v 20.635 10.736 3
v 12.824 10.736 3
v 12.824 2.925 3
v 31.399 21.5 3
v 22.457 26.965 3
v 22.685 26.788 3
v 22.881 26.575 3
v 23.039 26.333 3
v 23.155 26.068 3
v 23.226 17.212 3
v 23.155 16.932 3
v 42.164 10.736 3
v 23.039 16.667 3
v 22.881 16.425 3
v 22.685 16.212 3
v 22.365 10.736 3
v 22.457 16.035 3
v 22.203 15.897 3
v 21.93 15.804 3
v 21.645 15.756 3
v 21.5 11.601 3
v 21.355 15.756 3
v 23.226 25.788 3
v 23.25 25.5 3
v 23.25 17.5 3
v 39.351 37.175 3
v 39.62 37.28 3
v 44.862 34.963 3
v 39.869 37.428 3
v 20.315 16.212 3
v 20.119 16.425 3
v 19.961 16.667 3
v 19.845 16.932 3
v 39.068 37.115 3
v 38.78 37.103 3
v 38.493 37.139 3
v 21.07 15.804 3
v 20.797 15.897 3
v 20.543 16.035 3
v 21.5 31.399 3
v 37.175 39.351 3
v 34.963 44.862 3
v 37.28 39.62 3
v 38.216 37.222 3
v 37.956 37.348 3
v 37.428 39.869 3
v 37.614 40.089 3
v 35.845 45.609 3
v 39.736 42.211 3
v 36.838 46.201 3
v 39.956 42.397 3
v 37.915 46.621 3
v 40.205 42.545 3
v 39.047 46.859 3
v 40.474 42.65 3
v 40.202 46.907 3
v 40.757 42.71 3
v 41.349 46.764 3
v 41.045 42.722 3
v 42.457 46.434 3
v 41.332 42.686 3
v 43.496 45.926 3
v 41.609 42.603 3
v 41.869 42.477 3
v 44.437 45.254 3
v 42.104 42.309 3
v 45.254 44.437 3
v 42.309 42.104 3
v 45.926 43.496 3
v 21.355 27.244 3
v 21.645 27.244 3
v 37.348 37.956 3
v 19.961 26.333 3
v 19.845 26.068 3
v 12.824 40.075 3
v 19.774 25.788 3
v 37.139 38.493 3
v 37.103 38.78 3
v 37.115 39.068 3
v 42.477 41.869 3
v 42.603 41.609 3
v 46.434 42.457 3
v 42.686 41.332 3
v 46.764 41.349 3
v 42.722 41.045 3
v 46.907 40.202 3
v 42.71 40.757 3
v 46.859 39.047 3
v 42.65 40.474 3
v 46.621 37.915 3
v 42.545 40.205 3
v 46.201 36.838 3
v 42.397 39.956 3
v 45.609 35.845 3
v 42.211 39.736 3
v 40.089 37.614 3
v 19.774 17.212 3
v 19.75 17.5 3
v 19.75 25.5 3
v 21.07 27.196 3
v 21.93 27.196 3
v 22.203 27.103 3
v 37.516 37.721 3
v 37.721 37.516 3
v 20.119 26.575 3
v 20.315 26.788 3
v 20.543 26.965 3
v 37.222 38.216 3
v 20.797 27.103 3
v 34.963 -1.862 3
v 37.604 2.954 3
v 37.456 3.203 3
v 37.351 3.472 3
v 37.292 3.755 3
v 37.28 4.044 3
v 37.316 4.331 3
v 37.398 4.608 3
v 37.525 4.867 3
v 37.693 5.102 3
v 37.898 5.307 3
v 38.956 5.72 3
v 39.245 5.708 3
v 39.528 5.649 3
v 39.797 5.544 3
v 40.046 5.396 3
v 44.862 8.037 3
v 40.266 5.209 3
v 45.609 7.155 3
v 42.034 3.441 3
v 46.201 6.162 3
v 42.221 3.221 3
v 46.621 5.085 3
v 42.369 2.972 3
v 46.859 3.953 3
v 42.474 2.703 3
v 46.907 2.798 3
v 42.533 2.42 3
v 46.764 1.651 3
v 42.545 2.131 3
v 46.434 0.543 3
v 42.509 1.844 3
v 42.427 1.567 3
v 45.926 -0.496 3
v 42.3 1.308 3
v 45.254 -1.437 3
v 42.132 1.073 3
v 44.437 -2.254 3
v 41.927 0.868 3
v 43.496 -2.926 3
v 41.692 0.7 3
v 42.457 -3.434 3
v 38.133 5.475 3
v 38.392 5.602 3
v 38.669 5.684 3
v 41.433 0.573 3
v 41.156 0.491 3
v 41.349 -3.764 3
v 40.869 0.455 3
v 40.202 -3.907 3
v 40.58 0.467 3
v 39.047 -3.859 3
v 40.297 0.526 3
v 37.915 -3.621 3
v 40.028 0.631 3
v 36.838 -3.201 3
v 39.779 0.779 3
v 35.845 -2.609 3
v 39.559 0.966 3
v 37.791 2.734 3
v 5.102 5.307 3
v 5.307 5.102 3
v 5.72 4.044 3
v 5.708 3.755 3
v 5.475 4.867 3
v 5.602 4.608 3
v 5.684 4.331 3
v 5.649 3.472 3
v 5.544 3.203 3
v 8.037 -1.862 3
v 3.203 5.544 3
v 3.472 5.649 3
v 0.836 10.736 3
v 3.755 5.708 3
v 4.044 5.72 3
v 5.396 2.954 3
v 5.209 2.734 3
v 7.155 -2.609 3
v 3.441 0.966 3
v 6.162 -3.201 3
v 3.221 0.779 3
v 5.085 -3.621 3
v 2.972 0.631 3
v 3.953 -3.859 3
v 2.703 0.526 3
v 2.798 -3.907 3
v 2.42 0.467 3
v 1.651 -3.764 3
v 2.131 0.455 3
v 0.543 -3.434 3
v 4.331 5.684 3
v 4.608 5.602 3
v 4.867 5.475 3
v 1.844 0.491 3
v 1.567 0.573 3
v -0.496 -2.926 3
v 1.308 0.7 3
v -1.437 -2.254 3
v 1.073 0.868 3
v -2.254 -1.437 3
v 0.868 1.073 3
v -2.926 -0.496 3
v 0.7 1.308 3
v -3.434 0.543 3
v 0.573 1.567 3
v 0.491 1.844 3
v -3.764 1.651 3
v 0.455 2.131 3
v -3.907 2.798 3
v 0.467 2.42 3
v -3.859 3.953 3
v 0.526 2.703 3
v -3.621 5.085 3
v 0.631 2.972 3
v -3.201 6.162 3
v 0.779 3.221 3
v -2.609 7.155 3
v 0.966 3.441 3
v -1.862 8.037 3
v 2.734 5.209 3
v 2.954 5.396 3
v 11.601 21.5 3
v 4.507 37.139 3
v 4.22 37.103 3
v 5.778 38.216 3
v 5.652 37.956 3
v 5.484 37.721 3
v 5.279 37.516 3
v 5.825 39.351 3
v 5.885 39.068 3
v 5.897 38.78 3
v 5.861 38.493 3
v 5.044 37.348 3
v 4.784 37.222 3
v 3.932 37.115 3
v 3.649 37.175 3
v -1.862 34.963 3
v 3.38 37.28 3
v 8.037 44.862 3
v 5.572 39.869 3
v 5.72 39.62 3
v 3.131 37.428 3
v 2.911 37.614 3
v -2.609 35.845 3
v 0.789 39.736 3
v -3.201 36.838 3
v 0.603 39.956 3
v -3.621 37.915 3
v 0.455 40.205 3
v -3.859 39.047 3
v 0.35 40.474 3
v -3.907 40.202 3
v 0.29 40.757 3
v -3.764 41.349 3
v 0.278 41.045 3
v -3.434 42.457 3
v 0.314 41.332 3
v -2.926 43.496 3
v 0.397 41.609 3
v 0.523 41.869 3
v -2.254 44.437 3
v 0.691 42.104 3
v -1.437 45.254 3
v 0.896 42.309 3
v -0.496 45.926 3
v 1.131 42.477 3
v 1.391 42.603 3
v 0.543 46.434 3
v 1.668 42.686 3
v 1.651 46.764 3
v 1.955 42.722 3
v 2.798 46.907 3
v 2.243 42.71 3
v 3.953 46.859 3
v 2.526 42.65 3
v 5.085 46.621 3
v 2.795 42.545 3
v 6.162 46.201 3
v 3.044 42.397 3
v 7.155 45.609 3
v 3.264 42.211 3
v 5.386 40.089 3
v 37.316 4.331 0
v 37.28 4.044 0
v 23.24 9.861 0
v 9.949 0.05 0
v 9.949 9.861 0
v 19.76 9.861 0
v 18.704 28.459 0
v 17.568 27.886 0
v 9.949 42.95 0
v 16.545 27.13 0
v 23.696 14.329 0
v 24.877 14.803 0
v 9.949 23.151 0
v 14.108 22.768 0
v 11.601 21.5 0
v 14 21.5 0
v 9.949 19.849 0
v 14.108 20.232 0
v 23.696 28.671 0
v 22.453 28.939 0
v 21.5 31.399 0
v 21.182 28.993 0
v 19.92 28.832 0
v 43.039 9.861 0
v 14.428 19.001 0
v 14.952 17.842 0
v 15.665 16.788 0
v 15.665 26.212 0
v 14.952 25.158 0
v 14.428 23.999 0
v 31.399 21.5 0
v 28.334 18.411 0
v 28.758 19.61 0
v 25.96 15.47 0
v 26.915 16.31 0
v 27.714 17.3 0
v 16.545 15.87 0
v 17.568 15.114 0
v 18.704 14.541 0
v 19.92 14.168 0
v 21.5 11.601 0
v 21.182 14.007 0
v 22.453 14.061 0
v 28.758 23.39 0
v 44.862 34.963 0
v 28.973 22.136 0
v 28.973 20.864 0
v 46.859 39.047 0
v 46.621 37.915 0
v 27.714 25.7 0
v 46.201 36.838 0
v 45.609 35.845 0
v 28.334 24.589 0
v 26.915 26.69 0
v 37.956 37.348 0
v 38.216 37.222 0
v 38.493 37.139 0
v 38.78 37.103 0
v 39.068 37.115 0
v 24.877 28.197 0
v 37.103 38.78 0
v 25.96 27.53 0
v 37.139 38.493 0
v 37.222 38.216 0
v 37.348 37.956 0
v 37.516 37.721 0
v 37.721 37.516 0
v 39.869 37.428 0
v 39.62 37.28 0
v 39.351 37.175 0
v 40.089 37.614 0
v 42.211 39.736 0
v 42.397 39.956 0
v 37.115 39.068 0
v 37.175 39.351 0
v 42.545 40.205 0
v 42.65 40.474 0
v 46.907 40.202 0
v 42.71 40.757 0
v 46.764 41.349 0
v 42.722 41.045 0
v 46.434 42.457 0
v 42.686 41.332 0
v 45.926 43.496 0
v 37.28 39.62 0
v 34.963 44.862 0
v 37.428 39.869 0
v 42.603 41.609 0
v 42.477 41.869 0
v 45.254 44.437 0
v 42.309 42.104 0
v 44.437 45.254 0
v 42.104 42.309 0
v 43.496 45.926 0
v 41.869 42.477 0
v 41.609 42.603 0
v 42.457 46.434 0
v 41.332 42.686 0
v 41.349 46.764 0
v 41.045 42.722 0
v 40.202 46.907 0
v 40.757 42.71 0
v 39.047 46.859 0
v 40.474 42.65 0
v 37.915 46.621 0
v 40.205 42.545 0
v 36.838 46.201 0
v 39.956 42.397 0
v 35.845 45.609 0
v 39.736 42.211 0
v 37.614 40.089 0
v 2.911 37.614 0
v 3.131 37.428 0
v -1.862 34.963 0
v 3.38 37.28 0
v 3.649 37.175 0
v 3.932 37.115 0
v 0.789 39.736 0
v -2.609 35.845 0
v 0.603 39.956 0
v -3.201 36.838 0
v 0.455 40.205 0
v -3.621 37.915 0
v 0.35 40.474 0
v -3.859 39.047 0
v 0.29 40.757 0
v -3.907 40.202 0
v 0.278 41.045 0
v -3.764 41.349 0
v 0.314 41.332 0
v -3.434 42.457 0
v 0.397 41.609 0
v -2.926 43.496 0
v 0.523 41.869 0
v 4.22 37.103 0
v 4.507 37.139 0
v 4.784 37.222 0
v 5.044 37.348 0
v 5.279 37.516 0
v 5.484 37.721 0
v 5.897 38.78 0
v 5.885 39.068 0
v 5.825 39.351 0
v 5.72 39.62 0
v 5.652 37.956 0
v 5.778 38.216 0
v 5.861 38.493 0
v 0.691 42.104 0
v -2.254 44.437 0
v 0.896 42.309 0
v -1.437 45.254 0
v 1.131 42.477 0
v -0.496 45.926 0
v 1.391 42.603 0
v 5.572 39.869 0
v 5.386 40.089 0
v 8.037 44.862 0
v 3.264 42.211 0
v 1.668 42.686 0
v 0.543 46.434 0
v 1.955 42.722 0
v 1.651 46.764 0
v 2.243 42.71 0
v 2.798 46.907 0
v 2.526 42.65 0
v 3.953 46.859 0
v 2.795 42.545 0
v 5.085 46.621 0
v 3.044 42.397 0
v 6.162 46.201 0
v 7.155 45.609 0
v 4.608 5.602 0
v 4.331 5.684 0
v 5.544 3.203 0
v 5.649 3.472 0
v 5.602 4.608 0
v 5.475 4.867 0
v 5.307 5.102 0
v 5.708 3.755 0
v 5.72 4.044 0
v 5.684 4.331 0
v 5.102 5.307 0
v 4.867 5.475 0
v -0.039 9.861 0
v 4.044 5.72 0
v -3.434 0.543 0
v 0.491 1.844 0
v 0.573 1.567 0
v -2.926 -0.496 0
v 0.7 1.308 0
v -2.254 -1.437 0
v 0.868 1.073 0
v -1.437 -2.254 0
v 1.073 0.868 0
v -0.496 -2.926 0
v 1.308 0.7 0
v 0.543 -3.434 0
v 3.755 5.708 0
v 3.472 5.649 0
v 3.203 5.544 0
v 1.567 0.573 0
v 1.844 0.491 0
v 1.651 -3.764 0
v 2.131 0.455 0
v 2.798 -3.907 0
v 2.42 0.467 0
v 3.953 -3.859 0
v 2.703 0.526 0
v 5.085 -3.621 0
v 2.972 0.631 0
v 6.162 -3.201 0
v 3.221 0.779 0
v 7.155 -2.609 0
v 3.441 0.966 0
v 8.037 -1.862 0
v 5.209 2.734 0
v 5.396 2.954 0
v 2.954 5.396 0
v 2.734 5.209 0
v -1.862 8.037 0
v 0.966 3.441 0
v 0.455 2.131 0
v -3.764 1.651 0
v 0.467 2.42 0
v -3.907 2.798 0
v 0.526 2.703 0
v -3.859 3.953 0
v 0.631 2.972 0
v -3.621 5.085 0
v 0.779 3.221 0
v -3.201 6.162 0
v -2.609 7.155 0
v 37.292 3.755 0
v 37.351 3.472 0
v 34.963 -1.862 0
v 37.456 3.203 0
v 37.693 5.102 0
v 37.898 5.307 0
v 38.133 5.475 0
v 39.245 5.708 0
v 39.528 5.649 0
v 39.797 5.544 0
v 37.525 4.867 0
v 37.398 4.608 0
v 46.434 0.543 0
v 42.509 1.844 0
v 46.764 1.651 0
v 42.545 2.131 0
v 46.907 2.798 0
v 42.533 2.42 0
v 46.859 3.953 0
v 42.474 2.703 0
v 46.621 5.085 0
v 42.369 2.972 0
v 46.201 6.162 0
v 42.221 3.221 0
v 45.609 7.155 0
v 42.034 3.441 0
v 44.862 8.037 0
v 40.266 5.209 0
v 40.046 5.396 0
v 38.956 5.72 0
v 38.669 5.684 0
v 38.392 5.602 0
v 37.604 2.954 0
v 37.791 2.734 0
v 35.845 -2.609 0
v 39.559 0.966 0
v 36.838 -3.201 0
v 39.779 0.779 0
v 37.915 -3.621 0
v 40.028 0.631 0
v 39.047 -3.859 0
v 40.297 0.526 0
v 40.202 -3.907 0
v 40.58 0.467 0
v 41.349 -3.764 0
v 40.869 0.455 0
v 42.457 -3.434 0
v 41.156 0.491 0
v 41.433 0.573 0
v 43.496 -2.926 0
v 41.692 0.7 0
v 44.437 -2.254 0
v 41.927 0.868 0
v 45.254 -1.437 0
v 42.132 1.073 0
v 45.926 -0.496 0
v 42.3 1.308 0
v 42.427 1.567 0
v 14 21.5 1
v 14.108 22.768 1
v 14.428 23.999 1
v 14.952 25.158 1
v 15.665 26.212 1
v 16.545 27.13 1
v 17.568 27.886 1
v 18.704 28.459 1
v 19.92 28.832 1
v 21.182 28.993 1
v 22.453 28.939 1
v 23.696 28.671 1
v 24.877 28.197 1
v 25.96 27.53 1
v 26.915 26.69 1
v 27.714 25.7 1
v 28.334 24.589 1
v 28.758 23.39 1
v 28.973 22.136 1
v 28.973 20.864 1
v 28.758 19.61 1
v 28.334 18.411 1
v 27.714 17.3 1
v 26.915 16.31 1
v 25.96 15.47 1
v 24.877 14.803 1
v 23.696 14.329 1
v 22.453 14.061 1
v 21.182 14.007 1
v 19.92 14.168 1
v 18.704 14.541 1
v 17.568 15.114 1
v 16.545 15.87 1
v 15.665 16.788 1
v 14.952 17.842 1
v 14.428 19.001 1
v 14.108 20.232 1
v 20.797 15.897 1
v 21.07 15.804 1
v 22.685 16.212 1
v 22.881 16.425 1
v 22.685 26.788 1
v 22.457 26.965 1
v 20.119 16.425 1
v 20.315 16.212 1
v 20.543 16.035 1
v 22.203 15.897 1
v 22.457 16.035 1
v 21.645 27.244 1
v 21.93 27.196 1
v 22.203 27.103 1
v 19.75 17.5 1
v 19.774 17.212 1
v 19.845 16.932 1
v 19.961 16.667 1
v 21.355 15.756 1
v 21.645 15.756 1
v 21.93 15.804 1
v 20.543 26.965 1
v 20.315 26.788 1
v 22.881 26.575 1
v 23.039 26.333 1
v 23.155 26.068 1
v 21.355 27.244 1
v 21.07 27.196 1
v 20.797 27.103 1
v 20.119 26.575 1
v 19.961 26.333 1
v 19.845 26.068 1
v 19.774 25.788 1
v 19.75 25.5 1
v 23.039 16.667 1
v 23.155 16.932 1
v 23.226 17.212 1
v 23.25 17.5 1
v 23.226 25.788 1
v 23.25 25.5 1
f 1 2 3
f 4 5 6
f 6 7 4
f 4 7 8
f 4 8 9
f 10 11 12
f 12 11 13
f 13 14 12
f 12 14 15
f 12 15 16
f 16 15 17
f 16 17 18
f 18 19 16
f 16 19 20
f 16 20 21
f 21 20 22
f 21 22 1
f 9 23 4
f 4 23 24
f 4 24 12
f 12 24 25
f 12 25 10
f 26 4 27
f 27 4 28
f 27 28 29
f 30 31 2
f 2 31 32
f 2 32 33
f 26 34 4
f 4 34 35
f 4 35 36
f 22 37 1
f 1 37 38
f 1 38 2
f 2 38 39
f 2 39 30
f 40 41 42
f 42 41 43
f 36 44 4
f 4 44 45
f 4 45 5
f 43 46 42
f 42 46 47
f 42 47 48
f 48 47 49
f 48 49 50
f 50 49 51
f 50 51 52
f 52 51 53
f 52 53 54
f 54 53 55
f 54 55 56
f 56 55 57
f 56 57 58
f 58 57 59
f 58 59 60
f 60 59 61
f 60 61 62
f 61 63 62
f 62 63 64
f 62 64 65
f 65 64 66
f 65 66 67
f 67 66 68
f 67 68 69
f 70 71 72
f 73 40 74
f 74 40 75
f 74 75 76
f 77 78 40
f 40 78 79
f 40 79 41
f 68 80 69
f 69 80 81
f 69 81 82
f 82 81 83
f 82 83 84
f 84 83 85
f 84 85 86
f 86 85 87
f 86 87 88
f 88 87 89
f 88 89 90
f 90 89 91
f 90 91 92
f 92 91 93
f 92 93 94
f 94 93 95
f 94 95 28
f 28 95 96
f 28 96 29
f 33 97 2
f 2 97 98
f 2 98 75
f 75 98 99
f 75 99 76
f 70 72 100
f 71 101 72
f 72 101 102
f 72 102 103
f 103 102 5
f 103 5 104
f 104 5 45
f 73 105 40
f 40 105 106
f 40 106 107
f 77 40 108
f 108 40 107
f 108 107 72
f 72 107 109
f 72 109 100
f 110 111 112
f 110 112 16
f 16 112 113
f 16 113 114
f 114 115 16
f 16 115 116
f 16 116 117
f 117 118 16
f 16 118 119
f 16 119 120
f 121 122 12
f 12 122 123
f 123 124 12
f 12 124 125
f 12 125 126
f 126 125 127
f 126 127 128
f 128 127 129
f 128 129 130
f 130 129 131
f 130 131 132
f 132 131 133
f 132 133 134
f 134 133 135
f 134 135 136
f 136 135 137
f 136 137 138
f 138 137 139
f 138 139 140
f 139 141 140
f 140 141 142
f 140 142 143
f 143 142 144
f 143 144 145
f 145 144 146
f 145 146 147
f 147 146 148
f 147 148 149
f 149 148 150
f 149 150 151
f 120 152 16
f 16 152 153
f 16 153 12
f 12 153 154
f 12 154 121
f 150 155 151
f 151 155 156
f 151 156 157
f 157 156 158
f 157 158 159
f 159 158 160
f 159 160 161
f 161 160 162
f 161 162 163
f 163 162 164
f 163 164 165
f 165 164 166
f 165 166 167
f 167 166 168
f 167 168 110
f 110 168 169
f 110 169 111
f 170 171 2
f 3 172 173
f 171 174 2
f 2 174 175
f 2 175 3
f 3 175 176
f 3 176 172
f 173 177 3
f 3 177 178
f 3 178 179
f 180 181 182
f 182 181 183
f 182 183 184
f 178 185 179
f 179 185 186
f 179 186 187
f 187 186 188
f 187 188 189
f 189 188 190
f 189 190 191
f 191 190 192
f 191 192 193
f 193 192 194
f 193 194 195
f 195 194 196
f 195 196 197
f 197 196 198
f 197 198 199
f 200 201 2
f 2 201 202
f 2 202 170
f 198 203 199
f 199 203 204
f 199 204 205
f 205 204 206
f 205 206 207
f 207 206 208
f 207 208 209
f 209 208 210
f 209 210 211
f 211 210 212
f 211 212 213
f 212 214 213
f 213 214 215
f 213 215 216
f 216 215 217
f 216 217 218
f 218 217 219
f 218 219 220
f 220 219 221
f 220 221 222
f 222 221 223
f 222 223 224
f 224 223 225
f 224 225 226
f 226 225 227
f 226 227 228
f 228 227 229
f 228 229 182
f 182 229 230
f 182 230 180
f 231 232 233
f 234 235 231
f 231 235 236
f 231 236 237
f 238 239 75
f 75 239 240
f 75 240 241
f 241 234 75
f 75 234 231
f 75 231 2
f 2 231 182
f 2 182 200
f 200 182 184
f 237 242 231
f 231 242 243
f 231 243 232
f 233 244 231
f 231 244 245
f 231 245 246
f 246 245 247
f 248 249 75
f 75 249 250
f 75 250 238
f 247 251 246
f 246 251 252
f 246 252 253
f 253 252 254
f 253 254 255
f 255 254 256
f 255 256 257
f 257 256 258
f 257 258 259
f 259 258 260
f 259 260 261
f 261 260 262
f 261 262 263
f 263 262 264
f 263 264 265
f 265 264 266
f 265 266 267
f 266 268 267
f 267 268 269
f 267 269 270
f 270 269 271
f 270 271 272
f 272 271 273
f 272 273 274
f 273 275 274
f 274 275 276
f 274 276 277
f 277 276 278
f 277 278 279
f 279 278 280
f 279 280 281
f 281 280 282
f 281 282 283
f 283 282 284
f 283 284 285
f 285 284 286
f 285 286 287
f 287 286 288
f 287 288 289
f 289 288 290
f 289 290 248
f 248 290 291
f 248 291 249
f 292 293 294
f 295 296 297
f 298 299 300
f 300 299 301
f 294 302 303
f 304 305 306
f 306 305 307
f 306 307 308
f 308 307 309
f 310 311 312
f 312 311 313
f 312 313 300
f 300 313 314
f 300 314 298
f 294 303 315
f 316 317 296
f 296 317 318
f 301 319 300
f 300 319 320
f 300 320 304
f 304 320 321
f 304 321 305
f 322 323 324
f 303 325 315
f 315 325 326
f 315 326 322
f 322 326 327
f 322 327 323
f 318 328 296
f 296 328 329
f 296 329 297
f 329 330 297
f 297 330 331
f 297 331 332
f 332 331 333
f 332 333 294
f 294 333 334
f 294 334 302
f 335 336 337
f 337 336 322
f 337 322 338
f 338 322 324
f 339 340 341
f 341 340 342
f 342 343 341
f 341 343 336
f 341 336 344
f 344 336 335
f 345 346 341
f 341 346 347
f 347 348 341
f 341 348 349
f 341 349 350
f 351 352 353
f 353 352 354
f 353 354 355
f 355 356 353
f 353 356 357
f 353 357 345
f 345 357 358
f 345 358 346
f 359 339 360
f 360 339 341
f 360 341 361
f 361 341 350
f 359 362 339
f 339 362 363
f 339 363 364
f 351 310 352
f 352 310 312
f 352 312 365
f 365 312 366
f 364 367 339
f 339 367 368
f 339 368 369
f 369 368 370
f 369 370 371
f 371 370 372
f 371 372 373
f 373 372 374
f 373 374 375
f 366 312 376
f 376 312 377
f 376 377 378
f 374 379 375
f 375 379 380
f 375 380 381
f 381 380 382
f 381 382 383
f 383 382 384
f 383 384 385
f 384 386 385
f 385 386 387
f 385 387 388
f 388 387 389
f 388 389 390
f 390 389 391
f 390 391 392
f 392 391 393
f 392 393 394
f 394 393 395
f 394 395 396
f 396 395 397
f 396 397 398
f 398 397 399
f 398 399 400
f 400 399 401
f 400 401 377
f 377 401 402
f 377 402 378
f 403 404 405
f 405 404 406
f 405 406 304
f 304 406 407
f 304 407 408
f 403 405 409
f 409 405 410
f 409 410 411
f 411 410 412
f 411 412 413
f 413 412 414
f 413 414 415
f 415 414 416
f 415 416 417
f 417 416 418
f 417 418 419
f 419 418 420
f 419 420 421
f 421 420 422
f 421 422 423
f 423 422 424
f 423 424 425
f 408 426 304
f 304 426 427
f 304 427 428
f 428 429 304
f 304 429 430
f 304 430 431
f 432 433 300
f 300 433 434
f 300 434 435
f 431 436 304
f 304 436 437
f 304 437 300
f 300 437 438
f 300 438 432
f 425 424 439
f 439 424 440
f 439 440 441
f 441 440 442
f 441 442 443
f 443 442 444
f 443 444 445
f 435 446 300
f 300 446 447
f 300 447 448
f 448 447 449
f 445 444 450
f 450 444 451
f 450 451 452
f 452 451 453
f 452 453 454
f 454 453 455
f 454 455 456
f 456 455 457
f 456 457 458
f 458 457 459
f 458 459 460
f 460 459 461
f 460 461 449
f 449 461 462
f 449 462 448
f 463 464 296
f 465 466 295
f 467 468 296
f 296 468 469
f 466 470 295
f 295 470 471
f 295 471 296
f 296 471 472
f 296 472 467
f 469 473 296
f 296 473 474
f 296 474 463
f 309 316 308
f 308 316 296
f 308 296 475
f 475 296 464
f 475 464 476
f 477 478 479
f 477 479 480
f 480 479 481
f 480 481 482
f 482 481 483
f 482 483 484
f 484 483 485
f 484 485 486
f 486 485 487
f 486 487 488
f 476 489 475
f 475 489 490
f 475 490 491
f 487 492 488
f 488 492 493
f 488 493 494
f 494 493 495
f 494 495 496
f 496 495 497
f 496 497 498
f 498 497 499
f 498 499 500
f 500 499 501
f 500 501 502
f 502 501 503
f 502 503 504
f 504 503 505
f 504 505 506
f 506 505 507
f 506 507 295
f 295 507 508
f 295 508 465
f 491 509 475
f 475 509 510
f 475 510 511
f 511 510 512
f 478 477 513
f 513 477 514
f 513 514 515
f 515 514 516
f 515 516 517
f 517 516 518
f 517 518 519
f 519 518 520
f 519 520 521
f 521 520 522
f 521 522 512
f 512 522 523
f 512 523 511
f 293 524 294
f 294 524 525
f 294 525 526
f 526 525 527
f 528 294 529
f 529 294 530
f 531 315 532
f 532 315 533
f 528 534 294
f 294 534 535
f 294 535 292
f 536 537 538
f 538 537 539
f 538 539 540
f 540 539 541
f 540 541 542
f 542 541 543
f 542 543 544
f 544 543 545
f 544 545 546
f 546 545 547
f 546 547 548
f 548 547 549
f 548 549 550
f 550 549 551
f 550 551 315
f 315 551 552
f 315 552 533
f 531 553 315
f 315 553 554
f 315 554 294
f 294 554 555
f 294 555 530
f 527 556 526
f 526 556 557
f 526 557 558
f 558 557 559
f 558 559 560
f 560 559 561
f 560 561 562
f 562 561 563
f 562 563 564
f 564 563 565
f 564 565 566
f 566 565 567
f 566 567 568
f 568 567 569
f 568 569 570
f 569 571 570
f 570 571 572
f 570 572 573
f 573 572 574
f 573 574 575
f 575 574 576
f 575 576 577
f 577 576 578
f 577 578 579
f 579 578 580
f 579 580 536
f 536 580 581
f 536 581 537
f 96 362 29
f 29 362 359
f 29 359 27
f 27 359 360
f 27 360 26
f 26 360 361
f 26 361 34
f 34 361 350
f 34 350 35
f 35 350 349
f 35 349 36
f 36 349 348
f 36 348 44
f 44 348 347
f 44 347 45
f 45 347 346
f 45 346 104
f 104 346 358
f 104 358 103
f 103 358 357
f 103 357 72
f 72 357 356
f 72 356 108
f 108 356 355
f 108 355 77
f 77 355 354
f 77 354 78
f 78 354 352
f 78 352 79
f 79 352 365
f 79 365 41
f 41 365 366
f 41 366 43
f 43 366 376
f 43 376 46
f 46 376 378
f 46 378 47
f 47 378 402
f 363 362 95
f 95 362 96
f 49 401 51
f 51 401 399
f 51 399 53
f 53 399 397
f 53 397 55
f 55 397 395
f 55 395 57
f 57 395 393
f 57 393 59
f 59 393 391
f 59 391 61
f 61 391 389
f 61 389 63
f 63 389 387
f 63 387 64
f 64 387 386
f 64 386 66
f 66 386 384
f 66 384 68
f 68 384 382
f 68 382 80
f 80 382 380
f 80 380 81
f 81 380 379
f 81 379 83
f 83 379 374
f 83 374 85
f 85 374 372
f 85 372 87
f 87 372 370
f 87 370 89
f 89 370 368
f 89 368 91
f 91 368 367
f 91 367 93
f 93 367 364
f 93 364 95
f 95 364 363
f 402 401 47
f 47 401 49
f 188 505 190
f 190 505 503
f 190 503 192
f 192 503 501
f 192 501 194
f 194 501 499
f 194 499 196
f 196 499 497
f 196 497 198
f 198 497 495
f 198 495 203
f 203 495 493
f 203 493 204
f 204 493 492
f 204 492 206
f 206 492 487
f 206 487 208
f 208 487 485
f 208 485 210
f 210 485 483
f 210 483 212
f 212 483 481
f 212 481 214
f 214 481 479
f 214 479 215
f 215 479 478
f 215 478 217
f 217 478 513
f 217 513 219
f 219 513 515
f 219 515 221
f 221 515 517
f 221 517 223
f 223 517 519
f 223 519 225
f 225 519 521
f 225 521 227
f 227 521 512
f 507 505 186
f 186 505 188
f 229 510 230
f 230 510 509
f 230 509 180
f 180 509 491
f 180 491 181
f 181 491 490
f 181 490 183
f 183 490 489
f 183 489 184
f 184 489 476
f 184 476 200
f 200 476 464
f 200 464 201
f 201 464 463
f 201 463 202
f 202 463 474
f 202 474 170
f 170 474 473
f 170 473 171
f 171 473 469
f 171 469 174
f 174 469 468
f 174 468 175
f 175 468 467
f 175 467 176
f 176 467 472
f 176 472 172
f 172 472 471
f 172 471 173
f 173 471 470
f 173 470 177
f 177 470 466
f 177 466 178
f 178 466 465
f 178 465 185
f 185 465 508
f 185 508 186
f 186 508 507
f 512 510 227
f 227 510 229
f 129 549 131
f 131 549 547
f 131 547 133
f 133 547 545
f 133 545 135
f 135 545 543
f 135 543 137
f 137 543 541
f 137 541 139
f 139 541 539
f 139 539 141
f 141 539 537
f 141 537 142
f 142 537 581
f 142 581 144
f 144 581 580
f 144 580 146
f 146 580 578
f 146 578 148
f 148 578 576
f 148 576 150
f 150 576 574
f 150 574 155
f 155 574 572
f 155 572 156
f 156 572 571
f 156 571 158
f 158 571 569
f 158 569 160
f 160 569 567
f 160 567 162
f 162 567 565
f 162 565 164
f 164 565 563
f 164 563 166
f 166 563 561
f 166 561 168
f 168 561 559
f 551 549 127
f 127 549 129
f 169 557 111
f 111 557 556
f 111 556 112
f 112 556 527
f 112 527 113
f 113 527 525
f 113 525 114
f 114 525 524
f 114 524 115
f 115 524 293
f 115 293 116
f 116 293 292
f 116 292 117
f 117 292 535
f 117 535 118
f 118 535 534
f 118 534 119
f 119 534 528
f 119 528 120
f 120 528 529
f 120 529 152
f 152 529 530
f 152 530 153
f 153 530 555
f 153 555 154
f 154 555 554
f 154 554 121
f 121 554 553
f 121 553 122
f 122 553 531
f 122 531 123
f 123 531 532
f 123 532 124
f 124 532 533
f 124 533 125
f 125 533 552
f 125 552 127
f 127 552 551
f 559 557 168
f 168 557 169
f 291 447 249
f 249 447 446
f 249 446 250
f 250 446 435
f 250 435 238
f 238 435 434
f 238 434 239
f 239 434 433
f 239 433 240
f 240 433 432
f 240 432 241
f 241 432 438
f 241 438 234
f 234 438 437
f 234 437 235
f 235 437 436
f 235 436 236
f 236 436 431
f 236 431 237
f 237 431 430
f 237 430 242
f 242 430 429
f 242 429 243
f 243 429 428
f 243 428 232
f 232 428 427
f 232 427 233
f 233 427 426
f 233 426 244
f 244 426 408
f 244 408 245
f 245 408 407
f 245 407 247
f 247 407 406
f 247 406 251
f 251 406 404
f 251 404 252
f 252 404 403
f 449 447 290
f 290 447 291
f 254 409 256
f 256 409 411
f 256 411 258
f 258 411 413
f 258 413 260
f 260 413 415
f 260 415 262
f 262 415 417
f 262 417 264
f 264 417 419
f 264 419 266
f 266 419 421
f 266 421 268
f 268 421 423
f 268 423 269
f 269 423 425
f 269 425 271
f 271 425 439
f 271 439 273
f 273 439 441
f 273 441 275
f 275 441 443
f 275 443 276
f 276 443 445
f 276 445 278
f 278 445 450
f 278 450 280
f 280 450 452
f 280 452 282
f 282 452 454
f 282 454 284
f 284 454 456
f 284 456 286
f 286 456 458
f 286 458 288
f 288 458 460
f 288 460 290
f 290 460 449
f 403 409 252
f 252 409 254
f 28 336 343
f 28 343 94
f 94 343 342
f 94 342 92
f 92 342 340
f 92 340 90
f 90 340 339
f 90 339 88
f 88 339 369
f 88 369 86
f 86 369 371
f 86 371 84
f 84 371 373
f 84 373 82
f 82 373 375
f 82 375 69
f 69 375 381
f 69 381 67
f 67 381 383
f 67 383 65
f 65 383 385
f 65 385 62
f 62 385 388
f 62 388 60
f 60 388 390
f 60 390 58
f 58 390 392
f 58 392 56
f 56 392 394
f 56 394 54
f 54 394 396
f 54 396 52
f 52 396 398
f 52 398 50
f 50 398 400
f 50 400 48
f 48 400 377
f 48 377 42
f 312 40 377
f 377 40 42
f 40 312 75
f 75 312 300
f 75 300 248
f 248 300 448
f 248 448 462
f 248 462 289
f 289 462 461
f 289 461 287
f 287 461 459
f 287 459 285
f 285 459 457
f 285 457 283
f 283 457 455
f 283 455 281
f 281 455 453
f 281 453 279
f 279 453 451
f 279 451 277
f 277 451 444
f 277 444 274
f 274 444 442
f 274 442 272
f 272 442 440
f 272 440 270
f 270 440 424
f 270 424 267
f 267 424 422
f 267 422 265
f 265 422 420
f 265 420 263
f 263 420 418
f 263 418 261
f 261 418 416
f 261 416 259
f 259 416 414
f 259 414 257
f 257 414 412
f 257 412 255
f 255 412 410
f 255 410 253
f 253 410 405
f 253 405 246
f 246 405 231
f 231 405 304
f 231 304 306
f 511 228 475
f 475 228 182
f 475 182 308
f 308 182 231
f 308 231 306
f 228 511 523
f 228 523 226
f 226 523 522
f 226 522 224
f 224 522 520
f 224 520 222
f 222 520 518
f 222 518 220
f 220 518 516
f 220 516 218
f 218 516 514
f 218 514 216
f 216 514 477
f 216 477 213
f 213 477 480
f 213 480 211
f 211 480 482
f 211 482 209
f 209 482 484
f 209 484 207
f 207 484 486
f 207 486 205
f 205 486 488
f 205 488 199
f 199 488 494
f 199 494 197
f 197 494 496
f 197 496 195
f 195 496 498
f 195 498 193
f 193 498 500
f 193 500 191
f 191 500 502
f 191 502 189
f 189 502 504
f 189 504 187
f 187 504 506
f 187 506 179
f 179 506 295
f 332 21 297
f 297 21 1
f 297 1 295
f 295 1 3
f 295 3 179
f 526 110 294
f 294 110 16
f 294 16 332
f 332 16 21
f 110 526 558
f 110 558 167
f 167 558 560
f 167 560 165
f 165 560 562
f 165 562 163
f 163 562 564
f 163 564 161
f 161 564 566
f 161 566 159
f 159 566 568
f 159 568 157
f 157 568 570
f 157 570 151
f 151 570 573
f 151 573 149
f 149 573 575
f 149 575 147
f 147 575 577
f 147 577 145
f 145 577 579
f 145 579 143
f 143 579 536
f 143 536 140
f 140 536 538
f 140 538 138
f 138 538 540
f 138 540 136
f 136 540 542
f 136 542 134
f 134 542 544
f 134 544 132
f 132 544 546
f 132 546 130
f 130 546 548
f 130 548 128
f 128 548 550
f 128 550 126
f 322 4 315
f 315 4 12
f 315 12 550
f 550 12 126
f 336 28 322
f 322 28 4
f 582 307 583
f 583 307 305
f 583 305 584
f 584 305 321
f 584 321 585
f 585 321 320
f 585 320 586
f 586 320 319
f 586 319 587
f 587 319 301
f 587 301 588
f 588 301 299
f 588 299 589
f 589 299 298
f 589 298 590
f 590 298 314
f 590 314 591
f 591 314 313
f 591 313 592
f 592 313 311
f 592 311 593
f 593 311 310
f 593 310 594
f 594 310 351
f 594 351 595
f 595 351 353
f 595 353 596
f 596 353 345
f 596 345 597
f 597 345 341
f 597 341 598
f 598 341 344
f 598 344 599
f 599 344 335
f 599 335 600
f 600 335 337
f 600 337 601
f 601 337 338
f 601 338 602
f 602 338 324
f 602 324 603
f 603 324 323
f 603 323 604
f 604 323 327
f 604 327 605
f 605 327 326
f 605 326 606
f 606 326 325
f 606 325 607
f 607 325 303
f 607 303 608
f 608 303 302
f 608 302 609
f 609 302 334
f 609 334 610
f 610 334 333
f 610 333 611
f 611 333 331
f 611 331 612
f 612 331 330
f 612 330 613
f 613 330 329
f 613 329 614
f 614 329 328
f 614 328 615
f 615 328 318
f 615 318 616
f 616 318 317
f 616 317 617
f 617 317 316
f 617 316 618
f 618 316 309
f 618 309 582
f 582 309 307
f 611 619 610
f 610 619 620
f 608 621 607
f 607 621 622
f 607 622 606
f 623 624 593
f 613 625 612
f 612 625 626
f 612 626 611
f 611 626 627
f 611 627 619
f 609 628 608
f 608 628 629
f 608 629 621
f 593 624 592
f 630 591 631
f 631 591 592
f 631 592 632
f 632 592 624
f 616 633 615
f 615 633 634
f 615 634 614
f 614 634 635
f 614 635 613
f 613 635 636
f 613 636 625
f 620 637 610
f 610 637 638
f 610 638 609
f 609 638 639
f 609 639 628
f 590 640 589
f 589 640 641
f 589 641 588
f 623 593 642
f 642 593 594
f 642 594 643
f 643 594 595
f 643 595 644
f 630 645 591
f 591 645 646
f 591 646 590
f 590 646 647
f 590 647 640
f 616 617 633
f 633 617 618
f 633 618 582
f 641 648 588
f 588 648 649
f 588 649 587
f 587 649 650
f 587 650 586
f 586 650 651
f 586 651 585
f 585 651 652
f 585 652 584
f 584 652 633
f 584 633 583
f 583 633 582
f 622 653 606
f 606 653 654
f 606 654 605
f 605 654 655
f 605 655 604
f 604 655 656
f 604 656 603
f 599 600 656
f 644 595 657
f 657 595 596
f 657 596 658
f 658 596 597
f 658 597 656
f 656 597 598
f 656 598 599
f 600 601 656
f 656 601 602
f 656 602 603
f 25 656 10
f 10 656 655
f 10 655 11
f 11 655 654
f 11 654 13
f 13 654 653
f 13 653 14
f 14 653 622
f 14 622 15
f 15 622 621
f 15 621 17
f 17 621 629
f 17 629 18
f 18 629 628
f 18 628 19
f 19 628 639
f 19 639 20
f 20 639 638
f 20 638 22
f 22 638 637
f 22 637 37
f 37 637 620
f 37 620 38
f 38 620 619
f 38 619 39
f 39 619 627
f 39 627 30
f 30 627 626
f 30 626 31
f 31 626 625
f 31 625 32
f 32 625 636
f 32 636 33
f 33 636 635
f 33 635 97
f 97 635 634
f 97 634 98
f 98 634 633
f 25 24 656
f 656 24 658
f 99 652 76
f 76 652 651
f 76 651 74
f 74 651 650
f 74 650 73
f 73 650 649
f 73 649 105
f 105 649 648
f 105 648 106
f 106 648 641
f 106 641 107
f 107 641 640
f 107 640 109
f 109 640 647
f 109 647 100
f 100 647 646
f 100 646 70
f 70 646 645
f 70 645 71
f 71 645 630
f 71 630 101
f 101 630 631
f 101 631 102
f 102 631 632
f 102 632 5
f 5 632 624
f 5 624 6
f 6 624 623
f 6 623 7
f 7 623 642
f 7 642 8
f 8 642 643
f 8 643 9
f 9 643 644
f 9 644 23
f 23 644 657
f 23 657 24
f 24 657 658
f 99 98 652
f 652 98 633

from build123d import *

# Parameters (mm, degrees)
BOSS_EXTRUDE1_DEPTH = 3
CUT_EXTRUDE1_DEPTH  = 10
SKETCH3_OUTSIDE_W   = 98.222
SKETCH3_OUTSIDE_H   = 98.222
CUT_EXTRUDE2_DEPTH  = 10
SKETCH5_R           = 7.5
CUT_EXTRUDE3_DEPTH  = 1
CUT_EXTRUDE4_DEPTH  = 2


with BuildPart() as part:
    # Sketch1 → Boss-Extrude1 (new body)
    with BuildSketch(Plane.XY):
        with BuildLine():
            ThreePointArc((59, 21.5), (35.850628714, 56.145482469), (-5.016504294, 48.016504294))
            Line((-5.016504294, 48.016504294), (48.016504294, -5.016504294))
            ThreePointArc((48.016504294, -5.016504294), (56.145482469, 7.149371286), (59, 21.5))
        make_face()
        with BuildLine():
            Line((48.016504294, -5.016504294), (-5.016504294, 48.016504294))
            ThreePointArc((-5.016504294, 48.016504294), (-5.016504294, -5.016504294), (48.016504294, -5.016504294))
        make_face()
    extrude(amount=BOSS_EXTRUDE1_DEPTH)

    # Sketch2 → Cut-Extrude1 (cut)
    with BuildSketch(Plane(origin=(0, 0, 0), x_dir=(-1, 0, 0), z_dir=(0, 0, -1))):
        with BuildLine():
            Line((-40.089276695, 37.614402961), (-42.210597039, 39.735723305))
            ThreePointArc((-42.210597039, 39.735723305), (-42.210597039, 42.210597039), (-39.735723305, 42.210597039))
            Line((-39.735723305, 42.210597039), (-37.614402961, 40.089276695))
            ThreePointArc((-37.614402961, 40.089276695), (-37.614402961, 37.614402961), (-40.089276695, 37.614402961))
        make_face()
        with BuildLine():
            Line((-5.385597039, 40.089276695), (-3.264276695, 42.210597039))
            ThreePointArc((-3.264276695, 42.210597039), (-0.789402961, 42.210597039), (-0.789402961, 39.735723305))
            Line((-0.789402961, 39.735723305), (-2.910723305, 37.614402961))
            ThreePointArc((-2.910723305, 37.614402961), (-5.385597039, 37.614402961), (-5.385597039, 40.089276695))
        make_face()
        with BuildLine():
            Line((-42.033820344, 3.441053391), (-40.266053391, 5.208820344))
            ThreePointArc((-40.266053391, 5.208820344), (-37.791179656, 5.208820344), (-37.791179656, 2.733946609))
            Line((-37.791179656, 2.733946609), (-39.558946609, 0.966179656))
            ThreePointArc((-39.558946609, 0.966179656), (-42.033820344, 0.966179656), (-42.033820344, 3.441053391))
        make_face()
        with BuildLine():
            Line((-3.441053391, 0.966179656), (-5.208820344, 2.733946609))
            ThreePointArc((-5.208820344, 2.733946609), (-5.208820344, 5.208820344), (-2.733946609, 5.208820344))
            Line((-2.733946609, 5.208820344), (-0.966179656, 3.441053391))
            ThreePointArc((-0.966179656, 3.441053391), (-0.966179656, 0.966179656), (-3.441053391, 0.966179656))
        make_face()
    extrude(amount=-CUT_EXTRUDE1_DEPTH, mode=Mode.SUBTRACT)

    # Sketch3 outside → Cut-Extrude2 (cut)
    with BuildSketch(Plane(origin=(0, 0, 0), x_dir=(-1, 0, 0), z_dir=(0, 0, -1))):
        with Locations((-21.5, 21.5)):
            Rectangle(SKETCH3_OUTSIDE_W, SKETCH3_OUTSIDE_H)
        with BuildLine():
            Line((-34.962752532, 44.862247468), (-21.5, 31.399494937))
            Line((-21.5, 31.399494937), (-8.037247468, 44.862247468))
            ThreePointArc((-8.037247468, 44.862247468), (1.862247468, 44.862247468), (1.862247468, 34.962752532))
            Line((1.862247468, 34.962752532), (-11.600505063, 21.5))
            Line((-11.600505063, 21.5), (1.862247468, 8.037247468))
            ThreePointArc((1.862247468, 8.037247468), (1.862247468, -1.862247468), (-8.037247468, -1.862247468))
            Line((-8.037247468, -1.862247468), (-21.5, 11.600505063))
            Line((-21.5, 11.600505063), (-34.962752532, -1.862247468))
            ThreePointArc((-34.962752532, -1.862247468), (-44.862247468, -1.862247468), (-44.862247468, 8.037247468))
            Line((-44.862247468, 8.037247468), (-31.399494937, 21.5))
            Line((-31.399494937, 21.5), (-44.862247468, 34.962752532))
            ThreePointArc((-44.862247468, 34.962752532), (-44.862247468, 44.862247468), (-34.962752532, 44.862247468))
        make_face(mode=Mode.SUBTRACT)
    extrude(amount=-CUT_EXTRUDE2_DEPTH, mode=Mode.SUBTRACT)

    # Sketch5 → Cut-Extrude3 (cut)
    with BuildSketch(Plane(origin=(0, 0, 0), x_dir=(-1, 0, 0), z_dir=(0, 0, -1))):
        with Locations((-21.5, 21.5)):
            Circle(SKETCH5_R)
    extrude(amount=-CUT_EXTRUDE3_DEPTH, mode=Mode.SUBTRACT)

    # Sketch6 → Cut-Extrude4 (cut)
    with BuildSketch(Plane(origin=(0, 0, 1), x_dir=(-1, 0, 0), z_dir=(0, 0, -1))):
        with BuildLine():
            Line((-23.25, 17.5), (-23.25, 25.5))
            ThreePointArc((-23.25, 25.5), (-21.5, 27.25), (-19.75, 25.5))
            Line((-19.75, 25.5), (-19.75, 17.5))
            ThreePointArc((-19.75, 17.5), (-21.5, 15.75), (-23.25, 17.5))
        make_face()
    extrude(amount=-CUT_EXTRUDE4_DEPTH, mode=Mode.SUBTRACT)


solid = part.part
